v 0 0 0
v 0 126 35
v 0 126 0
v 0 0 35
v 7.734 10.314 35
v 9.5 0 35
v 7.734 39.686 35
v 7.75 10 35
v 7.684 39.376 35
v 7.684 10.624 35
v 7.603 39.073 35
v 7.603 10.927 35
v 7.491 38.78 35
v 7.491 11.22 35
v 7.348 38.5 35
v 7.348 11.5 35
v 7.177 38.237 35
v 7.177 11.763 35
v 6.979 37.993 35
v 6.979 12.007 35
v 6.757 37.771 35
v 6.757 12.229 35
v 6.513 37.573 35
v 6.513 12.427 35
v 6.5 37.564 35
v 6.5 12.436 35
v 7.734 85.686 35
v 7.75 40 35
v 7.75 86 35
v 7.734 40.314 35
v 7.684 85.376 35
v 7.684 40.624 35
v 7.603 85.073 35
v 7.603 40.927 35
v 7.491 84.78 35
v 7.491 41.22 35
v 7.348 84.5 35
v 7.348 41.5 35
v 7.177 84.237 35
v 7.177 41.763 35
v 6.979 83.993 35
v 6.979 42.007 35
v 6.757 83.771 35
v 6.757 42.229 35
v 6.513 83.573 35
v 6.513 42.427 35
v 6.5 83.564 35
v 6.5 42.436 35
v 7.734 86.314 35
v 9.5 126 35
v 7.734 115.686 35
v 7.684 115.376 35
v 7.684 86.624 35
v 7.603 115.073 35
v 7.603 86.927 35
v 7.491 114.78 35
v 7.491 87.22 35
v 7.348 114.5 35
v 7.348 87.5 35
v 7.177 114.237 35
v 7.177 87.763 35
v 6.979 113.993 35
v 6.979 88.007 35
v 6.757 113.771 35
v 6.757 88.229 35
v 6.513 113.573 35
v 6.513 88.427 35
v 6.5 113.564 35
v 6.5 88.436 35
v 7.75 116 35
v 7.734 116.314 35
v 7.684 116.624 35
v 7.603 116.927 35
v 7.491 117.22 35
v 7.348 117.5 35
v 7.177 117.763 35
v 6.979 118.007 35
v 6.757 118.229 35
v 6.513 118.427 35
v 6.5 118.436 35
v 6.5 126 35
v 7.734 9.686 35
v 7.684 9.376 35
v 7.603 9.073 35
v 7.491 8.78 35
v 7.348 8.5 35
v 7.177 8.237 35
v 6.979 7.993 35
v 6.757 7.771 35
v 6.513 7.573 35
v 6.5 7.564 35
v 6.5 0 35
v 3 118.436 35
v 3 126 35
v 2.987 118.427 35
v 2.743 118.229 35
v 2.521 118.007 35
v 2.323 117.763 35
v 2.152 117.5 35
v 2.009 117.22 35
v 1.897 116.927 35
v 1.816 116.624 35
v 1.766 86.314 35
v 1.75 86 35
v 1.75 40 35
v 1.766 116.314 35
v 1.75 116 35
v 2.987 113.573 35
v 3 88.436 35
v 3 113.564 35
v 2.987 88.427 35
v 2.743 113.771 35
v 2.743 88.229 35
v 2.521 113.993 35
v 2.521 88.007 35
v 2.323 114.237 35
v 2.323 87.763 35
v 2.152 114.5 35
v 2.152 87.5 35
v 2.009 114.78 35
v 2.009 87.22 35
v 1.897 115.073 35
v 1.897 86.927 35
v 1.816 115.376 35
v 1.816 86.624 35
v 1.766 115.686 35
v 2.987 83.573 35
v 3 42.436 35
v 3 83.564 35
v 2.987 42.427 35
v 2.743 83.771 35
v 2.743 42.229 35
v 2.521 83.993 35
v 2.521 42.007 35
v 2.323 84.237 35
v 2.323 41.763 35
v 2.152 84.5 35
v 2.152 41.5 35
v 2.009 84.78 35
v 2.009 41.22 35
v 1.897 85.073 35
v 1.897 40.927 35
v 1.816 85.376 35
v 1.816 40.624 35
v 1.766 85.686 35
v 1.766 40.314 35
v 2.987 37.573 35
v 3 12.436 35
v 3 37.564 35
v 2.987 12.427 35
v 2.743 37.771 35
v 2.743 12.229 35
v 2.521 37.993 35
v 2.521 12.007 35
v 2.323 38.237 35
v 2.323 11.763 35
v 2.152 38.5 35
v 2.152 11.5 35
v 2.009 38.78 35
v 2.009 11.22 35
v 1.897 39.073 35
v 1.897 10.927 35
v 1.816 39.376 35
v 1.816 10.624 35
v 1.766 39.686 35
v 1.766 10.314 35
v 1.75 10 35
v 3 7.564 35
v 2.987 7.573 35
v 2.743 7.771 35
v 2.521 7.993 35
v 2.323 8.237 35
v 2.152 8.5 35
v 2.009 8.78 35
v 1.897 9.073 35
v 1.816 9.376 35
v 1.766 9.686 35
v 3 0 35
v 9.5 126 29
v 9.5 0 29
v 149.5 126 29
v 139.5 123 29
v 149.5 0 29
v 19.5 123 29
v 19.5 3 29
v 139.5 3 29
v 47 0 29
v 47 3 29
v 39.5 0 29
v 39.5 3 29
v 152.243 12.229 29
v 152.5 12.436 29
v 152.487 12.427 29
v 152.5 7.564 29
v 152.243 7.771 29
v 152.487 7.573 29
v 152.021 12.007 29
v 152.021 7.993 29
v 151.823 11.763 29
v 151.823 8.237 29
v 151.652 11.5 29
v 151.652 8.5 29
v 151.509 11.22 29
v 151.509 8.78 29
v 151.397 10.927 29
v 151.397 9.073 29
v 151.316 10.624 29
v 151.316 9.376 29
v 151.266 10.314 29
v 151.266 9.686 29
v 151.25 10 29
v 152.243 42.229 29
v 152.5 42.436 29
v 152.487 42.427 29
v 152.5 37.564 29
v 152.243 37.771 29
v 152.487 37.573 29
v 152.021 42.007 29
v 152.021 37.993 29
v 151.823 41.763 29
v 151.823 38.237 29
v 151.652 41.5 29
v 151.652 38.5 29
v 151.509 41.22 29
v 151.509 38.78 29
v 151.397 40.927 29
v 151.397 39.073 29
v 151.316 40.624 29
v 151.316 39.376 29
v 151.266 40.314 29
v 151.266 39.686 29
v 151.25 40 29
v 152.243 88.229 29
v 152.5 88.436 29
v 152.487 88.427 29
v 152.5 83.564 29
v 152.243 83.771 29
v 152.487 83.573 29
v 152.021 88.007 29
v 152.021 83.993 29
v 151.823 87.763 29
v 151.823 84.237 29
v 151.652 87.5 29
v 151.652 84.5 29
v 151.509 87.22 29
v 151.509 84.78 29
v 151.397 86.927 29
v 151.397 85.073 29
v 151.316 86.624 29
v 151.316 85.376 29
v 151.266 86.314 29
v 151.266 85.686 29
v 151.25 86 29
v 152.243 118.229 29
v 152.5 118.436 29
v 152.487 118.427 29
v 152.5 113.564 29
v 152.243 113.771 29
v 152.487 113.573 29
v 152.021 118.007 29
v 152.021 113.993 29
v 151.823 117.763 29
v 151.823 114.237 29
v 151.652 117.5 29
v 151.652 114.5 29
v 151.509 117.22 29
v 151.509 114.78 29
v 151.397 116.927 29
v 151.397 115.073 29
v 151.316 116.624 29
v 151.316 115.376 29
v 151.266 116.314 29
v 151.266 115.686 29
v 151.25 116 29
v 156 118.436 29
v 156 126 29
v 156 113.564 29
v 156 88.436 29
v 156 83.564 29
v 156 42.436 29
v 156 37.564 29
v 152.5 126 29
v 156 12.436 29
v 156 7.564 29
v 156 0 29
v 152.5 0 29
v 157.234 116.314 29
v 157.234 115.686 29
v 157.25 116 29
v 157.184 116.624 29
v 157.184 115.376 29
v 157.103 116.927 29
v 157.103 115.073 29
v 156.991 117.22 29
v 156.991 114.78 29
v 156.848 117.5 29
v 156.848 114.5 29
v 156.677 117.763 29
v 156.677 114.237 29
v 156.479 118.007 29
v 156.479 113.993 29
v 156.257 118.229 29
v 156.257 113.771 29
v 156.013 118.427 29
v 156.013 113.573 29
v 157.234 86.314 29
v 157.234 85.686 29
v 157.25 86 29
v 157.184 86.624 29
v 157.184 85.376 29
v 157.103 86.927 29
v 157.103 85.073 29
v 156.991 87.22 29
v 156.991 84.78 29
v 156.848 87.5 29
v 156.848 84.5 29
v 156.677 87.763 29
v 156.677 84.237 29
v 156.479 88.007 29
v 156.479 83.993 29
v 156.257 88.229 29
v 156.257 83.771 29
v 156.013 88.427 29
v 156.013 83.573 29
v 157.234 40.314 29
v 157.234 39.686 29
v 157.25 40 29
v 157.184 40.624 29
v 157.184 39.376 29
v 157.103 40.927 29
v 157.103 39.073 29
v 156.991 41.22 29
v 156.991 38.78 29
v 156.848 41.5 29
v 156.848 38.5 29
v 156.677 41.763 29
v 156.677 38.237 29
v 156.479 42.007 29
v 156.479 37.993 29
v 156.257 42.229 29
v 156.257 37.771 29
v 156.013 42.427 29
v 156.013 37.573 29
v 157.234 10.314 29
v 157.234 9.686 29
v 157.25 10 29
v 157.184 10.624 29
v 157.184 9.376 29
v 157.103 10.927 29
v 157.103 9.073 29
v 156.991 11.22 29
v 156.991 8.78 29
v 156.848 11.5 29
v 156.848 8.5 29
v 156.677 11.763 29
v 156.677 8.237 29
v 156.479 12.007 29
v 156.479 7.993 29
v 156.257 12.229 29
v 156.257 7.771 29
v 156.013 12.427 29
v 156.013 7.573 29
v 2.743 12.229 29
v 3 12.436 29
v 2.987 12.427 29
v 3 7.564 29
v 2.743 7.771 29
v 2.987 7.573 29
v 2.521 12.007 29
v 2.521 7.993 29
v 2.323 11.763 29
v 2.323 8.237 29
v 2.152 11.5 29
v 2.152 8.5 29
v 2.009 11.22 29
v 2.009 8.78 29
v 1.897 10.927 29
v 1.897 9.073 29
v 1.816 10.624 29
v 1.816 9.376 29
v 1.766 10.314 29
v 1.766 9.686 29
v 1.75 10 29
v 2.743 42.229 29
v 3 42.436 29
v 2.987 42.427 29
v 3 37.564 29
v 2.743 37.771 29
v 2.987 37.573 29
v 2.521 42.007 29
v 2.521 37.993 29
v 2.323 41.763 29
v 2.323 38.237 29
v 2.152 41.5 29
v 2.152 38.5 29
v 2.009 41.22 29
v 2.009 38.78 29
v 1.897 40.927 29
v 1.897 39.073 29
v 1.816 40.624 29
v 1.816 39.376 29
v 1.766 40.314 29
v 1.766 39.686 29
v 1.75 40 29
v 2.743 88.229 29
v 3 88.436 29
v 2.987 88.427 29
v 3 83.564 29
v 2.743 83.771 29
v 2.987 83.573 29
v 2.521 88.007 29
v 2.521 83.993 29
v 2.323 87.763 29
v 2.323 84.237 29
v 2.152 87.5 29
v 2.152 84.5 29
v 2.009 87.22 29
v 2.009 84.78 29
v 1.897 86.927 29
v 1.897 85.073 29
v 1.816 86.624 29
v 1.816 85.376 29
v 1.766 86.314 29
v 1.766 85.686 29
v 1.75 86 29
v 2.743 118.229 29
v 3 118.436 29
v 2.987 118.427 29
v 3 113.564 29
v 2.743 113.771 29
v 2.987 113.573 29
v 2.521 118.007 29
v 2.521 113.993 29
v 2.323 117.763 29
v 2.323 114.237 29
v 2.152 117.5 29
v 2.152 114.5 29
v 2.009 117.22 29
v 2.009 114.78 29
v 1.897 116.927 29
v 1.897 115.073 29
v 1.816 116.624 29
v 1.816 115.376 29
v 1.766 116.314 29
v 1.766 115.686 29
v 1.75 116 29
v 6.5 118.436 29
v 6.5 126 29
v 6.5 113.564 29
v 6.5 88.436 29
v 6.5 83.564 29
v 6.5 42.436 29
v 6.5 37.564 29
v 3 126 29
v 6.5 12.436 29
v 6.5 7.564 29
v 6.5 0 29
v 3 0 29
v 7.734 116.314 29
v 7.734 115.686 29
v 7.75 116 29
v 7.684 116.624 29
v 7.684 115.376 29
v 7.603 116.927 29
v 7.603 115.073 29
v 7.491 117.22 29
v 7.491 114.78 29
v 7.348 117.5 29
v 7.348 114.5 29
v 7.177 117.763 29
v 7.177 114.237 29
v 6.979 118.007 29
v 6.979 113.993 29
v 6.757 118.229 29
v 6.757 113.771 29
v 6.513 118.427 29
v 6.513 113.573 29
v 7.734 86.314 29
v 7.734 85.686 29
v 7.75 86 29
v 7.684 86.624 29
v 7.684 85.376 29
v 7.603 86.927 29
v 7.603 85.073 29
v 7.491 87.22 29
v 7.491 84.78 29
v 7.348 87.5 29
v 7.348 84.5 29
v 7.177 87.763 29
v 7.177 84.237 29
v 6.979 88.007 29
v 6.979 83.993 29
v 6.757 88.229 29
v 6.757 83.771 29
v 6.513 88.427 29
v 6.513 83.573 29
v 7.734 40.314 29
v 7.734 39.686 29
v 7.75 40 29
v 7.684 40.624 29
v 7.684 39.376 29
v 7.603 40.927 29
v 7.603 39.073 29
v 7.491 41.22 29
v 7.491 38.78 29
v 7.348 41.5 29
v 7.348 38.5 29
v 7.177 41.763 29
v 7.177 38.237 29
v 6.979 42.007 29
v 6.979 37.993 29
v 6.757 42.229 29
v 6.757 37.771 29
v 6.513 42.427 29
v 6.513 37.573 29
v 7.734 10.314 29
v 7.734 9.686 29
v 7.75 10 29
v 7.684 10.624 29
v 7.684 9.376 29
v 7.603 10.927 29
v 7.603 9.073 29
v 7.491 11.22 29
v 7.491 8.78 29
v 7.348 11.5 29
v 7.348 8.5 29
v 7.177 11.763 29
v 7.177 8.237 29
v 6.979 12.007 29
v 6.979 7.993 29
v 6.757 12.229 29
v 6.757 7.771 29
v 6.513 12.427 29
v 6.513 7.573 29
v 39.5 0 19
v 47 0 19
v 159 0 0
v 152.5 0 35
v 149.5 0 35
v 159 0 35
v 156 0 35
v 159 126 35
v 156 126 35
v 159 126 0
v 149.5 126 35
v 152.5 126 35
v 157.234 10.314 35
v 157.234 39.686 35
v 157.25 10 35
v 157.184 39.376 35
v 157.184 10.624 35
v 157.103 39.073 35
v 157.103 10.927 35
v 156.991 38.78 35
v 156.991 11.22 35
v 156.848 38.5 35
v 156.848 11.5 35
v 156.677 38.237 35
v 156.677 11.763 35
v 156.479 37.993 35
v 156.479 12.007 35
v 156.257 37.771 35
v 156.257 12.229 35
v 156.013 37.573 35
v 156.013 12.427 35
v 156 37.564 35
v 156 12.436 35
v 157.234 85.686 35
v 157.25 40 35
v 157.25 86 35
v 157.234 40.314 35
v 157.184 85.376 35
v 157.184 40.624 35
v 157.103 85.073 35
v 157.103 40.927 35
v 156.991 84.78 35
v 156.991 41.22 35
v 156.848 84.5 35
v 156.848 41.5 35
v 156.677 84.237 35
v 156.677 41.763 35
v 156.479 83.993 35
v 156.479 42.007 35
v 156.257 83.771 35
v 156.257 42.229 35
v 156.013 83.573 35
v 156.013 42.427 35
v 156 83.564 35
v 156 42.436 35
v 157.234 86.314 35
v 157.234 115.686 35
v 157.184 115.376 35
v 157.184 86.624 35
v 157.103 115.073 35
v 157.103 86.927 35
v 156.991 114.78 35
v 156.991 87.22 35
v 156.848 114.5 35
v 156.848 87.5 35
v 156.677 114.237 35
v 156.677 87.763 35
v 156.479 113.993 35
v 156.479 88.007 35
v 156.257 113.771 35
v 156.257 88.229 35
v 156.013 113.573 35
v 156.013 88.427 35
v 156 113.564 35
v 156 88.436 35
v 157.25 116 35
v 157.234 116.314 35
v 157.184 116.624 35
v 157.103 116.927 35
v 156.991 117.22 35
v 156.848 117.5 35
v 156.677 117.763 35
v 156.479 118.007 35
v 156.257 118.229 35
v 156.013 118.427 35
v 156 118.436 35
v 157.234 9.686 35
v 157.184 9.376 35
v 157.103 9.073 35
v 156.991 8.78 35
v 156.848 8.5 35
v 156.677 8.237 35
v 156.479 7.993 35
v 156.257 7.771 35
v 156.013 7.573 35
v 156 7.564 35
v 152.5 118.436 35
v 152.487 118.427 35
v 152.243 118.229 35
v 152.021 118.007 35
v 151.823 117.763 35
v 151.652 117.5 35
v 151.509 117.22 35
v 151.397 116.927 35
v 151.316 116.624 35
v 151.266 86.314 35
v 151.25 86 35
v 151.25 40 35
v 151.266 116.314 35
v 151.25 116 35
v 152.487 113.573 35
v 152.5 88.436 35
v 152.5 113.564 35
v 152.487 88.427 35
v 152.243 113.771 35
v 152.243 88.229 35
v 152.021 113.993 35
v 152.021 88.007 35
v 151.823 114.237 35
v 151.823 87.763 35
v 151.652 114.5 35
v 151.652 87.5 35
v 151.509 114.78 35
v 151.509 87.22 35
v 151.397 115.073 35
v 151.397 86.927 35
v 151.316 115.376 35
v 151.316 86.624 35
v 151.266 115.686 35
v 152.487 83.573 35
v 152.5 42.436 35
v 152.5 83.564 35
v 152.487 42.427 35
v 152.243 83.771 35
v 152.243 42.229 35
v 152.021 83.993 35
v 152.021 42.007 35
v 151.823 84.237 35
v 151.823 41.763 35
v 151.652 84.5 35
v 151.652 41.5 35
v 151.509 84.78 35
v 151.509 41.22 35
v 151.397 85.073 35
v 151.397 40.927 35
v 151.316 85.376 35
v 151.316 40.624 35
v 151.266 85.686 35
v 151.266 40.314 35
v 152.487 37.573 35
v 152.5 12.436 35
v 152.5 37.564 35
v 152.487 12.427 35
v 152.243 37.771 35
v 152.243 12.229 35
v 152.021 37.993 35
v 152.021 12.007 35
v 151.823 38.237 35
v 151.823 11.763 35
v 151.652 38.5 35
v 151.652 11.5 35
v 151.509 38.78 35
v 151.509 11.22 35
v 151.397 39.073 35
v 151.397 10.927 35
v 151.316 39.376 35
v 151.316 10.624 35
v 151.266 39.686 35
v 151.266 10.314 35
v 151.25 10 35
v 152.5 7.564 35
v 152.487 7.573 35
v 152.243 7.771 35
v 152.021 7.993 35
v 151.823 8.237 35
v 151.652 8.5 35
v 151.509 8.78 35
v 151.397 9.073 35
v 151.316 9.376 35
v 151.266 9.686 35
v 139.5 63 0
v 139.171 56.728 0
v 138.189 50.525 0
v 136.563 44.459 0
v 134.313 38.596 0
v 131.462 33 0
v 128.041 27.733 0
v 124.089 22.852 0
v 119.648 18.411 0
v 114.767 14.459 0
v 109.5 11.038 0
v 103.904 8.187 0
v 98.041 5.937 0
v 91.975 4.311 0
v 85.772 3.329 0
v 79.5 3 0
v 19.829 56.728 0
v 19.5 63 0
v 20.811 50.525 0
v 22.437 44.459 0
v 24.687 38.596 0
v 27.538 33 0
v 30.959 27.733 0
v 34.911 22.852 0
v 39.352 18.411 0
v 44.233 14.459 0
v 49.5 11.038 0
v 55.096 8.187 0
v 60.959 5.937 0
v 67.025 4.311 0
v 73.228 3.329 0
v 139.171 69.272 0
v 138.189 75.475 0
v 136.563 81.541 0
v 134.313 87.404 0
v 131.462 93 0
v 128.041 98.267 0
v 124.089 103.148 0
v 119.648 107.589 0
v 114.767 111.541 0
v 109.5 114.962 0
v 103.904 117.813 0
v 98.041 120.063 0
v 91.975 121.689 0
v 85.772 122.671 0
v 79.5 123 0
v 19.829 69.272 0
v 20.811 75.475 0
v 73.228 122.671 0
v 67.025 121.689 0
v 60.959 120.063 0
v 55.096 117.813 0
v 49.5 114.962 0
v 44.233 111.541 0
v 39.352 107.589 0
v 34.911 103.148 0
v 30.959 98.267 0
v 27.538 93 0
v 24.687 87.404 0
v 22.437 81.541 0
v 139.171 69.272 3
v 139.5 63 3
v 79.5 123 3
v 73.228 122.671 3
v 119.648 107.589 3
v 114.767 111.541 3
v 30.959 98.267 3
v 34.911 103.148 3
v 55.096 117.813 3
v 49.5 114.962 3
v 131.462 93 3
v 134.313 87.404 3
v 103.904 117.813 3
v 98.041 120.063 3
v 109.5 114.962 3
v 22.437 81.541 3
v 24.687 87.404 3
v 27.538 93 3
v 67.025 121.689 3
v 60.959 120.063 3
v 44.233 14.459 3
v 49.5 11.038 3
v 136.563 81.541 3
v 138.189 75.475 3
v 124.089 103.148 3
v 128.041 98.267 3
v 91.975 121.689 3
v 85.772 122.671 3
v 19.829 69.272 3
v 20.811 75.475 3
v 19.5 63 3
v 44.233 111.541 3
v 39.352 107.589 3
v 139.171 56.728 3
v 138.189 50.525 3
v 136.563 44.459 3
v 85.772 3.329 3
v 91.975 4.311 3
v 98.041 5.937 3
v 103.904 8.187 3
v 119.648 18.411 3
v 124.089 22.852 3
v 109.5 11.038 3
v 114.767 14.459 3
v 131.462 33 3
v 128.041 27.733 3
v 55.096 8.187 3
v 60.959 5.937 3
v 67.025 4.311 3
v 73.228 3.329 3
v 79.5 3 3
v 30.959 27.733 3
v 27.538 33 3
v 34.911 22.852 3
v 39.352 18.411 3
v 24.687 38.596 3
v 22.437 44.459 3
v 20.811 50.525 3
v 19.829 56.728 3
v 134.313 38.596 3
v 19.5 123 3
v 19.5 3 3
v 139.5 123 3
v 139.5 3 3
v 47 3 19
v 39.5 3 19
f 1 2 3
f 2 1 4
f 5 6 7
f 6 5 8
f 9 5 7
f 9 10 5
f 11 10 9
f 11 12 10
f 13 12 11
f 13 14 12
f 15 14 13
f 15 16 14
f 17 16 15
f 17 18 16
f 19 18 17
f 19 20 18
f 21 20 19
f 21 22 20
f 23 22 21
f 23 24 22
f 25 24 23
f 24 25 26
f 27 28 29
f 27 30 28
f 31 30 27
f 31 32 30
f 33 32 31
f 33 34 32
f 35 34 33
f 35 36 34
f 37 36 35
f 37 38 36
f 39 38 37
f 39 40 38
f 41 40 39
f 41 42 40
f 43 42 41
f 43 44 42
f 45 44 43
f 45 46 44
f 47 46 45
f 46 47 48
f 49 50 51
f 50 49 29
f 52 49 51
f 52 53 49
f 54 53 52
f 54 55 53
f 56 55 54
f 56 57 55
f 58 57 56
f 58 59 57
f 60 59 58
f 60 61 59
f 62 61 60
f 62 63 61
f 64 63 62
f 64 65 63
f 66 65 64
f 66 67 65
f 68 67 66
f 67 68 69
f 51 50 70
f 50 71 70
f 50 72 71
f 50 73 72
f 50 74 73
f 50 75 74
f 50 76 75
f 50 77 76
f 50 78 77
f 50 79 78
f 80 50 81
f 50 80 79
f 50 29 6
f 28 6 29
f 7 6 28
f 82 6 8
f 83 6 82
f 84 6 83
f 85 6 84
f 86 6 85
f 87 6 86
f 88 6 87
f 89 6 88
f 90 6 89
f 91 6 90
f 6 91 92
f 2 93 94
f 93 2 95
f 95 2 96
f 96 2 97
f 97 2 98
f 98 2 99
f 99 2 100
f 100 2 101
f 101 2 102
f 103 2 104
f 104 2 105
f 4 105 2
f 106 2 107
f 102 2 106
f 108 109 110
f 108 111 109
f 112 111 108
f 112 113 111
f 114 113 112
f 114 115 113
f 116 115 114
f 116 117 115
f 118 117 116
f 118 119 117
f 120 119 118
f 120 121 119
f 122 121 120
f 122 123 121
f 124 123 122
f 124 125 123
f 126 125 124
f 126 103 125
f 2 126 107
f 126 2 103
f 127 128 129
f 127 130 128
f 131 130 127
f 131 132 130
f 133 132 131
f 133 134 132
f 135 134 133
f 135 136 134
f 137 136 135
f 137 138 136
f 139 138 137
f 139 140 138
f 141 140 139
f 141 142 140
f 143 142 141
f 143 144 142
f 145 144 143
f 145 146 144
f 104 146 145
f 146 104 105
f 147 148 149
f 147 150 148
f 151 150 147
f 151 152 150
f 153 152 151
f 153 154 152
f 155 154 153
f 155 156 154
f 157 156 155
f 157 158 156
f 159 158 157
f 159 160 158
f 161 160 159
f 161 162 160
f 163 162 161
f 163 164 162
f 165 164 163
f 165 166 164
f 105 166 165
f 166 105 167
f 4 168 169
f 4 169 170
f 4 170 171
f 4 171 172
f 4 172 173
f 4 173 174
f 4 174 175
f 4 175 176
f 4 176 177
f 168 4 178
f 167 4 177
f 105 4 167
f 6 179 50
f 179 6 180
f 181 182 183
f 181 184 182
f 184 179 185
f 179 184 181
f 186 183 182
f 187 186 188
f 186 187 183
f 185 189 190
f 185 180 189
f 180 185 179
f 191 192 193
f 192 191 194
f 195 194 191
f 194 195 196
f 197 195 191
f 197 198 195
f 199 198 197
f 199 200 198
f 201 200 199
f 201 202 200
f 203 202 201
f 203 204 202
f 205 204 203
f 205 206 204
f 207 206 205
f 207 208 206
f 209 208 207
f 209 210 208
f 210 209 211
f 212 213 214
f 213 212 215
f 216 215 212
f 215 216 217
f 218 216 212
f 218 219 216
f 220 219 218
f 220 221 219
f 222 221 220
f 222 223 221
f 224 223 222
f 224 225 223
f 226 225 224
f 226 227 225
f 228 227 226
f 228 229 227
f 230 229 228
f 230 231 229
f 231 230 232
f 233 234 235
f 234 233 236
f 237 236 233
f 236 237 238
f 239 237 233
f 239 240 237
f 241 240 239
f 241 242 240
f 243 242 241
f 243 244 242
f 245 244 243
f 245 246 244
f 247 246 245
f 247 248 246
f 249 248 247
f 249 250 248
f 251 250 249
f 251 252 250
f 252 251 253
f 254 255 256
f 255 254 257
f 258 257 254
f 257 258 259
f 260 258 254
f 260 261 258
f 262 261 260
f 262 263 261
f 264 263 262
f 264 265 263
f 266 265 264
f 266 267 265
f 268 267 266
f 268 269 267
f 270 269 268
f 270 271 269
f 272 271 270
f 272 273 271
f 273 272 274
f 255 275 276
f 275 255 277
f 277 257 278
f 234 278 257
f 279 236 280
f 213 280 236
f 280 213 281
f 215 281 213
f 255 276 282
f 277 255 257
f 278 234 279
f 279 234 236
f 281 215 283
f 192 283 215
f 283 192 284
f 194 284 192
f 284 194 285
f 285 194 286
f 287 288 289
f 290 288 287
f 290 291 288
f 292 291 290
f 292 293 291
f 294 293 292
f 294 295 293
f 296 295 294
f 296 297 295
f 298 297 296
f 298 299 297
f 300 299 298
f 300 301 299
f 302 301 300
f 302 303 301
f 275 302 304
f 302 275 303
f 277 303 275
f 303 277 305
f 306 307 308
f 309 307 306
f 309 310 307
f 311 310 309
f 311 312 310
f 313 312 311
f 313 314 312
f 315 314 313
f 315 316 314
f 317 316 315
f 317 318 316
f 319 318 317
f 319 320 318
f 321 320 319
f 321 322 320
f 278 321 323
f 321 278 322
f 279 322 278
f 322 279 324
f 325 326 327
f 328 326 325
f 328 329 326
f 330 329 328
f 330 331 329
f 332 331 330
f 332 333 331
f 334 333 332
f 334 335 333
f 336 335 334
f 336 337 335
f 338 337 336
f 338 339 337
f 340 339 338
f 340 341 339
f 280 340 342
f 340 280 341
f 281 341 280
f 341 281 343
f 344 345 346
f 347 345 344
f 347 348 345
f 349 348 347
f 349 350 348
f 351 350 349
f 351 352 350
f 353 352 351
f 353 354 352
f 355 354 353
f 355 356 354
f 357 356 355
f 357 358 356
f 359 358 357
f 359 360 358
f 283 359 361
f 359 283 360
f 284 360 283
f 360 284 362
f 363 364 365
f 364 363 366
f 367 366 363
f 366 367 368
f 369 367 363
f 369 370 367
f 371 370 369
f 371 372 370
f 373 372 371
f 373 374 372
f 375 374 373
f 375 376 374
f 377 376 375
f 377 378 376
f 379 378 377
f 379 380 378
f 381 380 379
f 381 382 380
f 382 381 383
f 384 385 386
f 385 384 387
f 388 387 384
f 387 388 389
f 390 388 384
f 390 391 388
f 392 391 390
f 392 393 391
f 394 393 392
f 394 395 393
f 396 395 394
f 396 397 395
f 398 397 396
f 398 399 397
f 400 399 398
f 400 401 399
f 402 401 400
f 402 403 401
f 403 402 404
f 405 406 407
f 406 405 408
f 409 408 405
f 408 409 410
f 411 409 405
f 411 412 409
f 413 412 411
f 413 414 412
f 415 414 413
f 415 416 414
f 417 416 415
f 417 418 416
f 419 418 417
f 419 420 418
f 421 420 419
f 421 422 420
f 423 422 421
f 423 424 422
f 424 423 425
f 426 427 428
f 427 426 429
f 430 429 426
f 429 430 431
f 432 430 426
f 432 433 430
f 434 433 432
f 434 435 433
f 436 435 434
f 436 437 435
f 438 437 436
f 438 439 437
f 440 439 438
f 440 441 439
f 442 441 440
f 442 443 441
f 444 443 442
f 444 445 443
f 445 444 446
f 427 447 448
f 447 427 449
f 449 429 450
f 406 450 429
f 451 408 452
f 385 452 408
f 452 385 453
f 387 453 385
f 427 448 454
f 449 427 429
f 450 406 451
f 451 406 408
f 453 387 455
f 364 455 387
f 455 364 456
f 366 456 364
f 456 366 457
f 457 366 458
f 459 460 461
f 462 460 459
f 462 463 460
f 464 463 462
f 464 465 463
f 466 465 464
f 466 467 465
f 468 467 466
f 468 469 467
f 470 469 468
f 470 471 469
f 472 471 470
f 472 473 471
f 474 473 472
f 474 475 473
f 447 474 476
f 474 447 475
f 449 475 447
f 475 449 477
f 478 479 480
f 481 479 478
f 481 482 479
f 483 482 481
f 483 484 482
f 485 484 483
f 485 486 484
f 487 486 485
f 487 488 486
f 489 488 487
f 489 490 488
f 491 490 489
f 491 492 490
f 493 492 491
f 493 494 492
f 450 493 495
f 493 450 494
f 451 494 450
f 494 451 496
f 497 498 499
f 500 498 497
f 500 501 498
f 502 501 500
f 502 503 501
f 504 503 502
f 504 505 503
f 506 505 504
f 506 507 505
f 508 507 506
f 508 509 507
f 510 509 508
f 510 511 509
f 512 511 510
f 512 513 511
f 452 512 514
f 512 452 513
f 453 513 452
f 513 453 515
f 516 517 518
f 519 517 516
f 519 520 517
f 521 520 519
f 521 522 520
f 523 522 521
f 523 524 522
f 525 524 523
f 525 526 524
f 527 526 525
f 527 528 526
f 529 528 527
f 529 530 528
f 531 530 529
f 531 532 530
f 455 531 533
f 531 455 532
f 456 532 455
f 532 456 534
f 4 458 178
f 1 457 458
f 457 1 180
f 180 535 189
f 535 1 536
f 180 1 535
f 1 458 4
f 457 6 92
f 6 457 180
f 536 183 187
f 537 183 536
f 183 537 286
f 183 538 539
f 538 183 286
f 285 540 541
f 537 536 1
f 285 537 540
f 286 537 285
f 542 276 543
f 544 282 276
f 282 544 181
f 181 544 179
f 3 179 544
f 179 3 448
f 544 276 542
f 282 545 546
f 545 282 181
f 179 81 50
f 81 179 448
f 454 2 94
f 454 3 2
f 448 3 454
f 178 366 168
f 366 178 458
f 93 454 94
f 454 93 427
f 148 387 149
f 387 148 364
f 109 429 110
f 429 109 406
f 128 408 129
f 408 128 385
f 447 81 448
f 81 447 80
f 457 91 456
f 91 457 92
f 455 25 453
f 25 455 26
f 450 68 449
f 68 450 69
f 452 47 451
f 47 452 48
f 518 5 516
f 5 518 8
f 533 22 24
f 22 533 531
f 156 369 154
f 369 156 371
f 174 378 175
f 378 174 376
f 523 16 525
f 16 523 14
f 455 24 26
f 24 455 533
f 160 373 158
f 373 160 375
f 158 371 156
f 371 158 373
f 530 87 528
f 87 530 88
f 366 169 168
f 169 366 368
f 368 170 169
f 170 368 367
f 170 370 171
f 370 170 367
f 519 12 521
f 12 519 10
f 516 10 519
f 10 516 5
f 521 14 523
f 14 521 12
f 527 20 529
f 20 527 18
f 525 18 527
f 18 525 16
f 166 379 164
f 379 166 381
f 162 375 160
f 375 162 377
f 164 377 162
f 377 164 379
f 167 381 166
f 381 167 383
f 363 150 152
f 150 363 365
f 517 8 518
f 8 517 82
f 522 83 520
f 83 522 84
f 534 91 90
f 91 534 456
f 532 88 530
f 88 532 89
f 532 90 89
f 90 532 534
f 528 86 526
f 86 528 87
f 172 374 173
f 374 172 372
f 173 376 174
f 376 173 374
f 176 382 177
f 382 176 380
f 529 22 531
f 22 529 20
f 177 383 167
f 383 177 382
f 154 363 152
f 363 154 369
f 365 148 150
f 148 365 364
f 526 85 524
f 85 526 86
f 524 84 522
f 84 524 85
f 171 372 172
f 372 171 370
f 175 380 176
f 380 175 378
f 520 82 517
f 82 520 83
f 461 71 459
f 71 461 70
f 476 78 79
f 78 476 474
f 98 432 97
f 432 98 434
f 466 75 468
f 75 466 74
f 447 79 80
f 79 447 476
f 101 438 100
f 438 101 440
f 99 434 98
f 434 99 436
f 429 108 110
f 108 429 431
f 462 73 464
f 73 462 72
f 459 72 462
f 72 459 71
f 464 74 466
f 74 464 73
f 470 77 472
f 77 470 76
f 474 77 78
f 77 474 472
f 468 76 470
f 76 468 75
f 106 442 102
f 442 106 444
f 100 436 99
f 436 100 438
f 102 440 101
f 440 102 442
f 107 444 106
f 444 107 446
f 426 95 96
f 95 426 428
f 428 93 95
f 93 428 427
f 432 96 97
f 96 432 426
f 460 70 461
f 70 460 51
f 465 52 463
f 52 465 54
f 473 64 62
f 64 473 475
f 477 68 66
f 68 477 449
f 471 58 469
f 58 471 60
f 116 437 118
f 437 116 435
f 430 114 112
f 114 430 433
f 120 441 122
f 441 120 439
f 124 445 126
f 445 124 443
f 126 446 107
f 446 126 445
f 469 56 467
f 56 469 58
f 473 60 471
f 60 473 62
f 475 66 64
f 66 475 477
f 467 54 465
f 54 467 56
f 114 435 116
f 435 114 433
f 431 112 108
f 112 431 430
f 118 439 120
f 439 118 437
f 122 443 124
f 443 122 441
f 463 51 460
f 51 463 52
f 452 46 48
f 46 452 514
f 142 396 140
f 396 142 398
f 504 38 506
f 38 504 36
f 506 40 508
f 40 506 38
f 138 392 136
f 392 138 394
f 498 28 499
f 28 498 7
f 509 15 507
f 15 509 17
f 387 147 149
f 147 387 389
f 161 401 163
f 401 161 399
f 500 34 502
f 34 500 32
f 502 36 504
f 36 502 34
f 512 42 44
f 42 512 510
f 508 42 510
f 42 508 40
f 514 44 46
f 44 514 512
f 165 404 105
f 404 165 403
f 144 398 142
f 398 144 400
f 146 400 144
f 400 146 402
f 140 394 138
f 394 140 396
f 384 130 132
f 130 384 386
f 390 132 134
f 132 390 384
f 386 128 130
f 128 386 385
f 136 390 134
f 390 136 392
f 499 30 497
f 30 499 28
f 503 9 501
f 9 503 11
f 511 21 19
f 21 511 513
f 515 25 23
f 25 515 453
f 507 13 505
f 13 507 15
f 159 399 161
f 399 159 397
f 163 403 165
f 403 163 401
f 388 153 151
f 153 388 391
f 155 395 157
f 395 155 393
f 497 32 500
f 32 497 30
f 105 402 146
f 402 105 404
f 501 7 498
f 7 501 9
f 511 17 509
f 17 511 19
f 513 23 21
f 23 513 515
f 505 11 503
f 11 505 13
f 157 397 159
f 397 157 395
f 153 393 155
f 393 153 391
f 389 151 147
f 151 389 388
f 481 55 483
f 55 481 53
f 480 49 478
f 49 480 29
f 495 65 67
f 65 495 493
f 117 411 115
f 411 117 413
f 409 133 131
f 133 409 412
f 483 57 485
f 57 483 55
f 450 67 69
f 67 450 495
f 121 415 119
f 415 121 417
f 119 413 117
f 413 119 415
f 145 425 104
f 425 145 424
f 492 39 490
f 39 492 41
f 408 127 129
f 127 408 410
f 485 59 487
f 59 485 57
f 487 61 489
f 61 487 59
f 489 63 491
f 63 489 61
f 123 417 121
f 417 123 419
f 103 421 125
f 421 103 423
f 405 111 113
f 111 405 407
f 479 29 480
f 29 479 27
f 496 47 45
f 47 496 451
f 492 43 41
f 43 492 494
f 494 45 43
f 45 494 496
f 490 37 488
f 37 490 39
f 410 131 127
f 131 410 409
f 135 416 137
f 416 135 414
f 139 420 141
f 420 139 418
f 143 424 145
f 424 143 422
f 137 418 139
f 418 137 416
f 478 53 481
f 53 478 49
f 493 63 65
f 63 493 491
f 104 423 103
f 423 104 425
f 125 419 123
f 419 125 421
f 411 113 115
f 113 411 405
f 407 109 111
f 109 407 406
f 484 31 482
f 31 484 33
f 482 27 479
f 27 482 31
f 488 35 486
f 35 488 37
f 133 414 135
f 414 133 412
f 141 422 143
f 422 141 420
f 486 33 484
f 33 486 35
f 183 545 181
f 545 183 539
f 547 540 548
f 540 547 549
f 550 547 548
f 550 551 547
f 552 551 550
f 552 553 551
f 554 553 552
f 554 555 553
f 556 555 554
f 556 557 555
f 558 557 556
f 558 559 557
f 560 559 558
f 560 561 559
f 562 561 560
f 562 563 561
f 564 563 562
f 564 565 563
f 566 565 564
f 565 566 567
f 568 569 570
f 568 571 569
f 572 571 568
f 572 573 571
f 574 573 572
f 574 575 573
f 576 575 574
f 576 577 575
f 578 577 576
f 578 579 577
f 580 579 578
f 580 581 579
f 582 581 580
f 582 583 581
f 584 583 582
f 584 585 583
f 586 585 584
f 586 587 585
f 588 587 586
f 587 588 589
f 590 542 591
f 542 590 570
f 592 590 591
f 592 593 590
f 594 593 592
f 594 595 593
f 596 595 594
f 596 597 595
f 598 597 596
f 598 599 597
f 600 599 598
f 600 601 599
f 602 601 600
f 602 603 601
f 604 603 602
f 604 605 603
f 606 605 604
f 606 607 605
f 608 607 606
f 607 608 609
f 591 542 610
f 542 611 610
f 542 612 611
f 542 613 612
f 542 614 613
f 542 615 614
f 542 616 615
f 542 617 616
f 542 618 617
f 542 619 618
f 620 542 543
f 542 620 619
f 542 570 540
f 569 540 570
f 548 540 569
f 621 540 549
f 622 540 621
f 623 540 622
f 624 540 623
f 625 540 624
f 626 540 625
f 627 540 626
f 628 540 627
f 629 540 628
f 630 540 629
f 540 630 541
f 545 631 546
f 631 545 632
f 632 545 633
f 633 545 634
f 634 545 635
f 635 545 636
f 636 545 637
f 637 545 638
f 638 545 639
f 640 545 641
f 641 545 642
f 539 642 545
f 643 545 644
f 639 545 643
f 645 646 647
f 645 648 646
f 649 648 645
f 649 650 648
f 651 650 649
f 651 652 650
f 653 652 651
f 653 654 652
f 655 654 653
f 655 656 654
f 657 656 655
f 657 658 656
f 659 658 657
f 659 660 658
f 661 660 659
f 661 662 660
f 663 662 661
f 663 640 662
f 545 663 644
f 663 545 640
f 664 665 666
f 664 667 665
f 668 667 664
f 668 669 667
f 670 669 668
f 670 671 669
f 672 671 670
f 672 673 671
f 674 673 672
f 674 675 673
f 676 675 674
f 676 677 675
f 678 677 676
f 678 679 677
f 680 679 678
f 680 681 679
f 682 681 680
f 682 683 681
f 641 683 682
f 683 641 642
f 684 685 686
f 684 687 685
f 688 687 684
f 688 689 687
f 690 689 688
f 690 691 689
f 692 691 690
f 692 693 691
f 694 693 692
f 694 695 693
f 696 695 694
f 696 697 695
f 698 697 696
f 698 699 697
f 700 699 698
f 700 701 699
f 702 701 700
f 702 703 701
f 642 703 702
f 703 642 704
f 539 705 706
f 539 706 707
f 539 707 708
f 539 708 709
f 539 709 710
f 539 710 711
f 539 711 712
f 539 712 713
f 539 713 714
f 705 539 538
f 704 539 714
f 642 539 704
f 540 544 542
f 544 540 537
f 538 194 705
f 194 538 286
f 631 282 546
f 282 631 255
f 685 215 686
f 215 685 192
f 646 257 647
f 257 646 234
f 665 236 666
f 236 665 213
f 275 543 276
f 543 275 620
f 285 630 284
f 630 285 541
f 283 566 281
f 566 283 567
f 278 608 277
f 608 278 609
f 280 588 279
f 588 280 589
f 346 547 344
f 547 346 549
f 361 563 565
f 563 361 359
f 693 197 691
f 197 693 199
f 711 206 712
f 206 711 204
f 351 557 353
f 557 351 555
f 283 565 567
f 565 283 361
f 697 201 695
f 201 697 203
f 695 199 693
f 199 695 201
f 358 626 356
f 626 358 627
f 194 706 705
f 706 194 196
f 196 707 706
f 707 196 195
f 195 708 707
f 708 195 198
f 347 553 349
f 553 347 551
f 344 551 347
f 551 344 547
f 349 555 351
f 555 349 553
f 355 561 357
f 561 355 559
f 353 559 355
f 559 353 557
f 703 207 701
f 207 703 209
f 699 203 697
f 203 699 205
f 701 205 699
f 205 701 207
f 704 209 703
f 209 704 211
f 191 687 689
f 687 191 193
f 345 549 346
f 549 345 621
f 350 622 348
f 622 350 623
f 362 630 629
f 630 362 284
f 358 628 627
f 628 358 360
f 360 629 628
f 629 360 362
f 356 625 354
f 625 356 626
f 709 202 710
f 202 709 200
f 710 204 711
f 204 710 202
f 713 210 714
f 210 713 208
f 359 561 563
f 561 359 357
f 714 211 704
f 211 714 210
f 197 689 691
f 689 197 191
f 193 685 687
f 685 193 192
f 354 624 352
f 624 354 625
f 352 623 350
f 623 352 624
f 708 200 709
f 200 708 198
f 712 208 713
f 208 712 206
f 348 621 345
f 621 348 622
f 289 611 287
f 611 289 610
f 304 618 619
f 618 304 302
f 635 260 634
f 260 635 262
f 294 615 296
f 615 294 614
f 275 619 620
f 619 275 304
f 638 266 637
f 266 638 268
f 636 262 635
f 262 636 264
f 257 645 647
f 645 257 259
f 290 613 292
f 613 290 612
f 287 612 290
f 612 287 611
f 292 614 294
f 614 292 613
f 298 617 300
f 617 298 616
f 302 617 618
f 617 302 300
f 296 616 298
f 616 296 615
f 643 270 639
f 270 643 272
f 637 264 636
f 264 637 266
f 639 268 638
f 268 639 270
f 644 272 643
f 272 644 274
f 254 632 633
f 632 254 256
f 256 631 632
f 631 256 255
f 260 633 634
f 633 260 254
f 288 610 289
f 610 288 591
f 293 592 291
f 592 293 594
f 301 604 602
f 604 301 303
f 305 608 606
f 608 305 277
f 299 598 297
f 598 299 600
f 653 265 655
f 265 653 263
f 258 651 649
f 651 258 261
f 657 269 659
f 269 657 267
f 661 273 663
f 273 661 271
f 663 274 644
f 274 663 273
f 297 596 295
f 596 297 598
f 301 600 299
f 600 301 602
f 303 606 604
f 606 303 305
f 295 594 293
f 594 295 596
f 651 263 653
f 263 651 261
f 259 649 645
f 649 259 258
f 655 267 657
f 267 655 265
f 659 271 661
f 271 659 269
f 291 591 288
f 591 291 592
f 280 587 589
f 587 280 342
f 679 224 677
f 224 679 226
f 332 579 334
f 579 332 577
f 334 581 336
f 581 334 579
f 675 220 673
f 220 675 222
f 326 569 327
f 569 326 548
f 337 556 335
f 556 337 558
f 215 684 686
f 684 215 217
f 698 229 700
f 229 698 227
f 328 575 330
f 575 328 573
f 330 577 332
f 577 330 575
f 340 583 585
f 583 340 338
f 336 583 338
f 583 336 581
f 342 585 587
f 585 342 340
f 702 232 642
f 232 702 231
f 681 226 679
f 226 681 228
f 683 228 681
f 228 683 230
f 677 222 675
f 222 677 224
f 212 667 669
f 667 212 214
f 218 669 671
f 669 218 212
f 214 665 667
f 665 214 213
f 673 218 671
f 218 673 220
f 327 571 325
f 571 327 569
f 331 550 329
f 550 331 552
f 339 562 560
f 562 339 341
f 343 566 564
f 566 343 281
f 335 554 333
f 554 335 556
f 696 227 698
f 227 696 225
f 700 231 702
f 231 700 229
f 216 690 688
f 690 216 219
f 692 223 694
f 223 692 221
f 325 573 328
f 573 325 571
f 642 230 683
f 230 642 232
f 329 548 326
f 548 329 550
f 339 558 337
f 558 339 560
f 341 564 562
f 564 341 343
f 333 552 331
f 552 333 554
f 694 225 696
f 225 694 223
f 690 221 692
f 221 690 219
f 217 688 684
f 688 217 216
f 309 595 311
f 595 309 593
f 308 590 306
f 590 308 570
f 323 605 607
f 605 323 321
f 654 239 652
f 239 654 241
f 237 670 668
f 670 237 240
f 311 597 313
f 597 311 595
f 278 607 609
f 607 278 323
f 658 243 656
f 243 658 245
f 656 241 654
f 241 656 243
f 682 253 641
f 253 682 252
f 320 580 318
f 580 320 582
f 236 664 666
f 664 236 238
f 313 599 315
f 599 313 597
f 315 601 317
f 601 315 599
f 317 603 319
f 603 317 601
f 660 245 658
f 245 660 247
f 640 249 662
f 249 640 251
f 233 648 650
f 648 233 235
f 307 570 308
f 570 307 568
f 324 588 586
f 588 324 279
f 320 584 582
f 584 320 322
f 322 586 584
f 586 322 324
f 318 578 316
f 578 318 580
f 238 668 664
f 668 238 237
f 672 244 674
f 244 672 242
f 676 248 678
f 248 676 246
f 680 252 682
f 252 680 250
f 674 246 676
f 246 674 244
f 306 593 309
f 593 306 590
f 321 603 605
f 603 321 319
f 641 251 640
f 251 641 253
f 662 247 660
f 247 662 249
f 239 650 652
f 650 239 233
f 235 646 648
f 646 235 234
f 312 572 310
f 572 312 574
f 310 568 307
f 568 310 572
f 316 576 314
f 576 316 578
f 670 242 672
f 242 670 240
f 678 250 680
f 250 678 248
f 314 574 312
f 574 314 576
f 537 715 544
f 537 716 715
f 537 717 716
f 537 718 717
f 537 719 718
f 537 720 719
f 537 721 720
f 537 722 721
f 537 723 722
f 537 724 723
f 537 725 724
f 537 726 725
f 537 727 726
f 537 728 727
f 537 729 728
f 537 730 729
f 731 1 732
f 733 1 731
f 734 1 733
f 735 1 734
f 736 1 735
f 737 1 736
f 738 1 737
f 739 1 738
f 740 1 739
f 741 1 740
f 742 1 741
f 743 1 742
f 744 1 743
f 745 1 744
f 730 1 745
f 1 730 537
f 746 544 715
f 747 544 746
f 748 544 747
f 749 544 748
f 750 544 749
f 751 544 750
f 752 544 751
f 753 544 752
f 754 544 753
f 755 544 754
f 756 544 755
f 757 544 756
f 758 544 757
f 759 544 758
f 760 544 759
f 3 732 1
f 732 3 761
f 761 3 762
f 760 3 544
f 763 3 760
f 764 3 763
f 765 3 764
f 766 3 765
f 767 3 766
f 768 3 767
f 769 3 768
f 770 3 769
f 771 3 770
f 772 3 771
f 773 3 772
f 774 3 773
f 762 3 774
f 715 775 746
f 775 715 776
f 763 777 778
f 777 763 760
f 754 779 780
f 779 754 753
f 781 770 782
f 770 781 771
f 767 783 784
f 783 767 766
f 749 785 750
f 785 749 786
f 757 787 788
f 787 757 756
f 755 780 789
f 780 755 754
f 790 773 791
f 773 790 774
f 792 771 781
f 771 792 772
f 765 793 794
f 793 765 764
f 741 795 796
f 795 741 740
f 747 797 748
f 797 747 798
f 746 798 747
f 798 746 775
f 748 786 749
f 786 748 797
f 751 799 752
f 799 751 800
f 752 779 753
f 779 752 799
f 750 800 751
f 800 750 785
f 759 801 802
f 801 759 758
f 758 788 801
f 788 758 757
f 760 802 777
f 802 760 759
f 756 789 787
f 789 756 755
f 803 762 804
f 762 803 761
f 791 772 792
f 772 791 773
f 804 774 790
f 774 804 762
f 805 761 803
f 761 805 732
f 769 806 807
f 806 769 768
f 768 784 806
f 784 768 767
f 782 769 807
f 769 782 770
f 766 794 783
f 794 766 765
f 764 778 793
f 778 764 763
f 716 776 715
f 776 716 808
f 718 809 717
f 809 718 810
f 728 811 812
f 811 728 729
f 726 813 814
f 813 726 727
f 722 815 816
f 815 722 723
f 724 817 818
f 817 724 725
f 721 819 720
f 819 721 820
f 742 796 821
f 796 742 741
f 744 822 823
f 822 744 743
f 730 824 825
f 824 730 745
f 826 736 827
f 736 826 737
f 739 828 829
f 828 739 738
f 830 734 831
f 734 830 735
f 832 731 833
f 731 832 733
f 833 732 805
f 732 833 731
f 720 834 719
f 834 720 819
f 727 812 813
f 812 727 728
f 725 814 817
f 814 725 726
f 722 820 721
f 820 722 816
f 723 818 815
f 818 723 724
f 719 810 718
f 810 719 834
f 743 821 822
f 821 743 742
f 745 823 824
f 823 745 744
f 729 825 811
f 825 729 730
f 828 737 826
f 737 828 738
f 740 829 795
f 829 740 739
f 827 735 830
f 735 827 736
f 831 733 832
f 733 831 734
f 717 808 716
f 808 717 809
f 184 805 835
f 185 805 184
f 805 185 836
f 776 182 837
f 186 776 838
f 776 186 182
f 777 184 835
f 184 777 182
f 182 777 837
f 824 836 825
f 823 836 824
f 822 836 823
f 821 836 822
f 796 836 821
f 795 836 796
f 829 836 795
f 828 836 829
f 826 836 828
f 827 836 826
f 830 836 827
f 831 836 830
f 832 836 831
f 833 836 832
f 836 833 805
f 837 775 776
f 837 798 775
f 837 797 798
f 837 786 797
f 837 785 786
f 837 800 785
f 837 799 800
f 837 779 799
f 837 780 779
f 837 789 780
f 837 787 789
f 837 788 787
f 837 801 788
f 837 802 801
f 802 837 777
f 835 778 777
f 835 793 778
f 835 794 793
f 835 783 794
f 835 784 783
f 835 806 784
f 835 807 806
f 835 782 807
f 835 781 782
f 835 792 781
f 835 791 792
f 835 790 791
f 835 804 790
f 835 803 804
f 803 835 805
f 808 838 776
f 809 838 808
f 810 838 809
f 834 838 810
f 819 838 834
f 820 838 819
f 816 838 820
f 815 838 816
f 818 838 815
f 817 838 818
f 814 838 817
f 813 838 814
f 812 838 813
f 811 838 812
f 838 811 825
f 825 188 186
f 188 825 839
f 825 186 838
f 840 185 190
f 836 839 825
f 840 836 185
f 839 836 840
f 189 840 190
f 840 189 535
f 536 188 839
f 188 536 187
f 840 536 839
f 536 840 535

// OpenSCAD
$fn=60;

Wall = 3;
RadiatorThickness = 3.5;
RadiatorHeight = 6;
RadiatorGuard = RadiatorThickness+2*Wall;

MagnetDiameter = 6;

FanDiameter = 120;

Width_X = 153;
Height = 26;

OuterWidth_x = Width_X + Wall * 2;
OuterWidth_y = FanDiameter+2*Wall;
OuterHeight = Height + Wall;

CanbleOffsetX = 20;
CableWidth = 7.5;
CableHeight = 10;

difference()
{
    cube([OuterWidth_x, OuterWidth_y, OuterHeight]);
    translate([OuterWidth_x/2, OuterWidth_y/2, -1])
        cylinder(h=100, d=FanDiameter);

    translate([(OuterWidth_x-FanDiameter)/2, (OuterWidth_y-FanDiameter)/2, Wall])
        cube([FanDiameter, FanDiameter, 100]);

    translate([CanbleOffsetX+(OuterWidth_x-FanDiameter)/2, 0, OuterHeight-CableHeight])
        cube([CableWidth, 20, CableHeight]);
}

RadiatorGuard(0);
RadiatorGuard(OuterWidth_x - RadiatorGuard);

module RadiatorGuard(xOffset) 
{
    translate([xOffset, 0, OuterHeight])
    {
        difference()
        {
            cube([RadiatorGuard, OuterWidth_y, RadiatorHeight]);
            translate([Wall, 0, 0])
                cube([RadiatorThickness, OuterWidth_y, RadiatorHeight+1]);
            translate([RadiatorGuard/2, 10, 0])
                cylinder(h=100, d=MagnetDiameter);
            translate([RadiatorGuard/2, OuterWidth_y-10, 0])
                cylinder(h=100, d=MagnetDiameter);
            translate([RadiatorGuard/2, 40, 0])
                cylinder(h=100, d=MagnetDiameter);
            translate([RadiatorGuard/2, OuterWidth_y-40, 0])
                cylinder(h=100, d=MagnetDiameter);

        }
    }
}
